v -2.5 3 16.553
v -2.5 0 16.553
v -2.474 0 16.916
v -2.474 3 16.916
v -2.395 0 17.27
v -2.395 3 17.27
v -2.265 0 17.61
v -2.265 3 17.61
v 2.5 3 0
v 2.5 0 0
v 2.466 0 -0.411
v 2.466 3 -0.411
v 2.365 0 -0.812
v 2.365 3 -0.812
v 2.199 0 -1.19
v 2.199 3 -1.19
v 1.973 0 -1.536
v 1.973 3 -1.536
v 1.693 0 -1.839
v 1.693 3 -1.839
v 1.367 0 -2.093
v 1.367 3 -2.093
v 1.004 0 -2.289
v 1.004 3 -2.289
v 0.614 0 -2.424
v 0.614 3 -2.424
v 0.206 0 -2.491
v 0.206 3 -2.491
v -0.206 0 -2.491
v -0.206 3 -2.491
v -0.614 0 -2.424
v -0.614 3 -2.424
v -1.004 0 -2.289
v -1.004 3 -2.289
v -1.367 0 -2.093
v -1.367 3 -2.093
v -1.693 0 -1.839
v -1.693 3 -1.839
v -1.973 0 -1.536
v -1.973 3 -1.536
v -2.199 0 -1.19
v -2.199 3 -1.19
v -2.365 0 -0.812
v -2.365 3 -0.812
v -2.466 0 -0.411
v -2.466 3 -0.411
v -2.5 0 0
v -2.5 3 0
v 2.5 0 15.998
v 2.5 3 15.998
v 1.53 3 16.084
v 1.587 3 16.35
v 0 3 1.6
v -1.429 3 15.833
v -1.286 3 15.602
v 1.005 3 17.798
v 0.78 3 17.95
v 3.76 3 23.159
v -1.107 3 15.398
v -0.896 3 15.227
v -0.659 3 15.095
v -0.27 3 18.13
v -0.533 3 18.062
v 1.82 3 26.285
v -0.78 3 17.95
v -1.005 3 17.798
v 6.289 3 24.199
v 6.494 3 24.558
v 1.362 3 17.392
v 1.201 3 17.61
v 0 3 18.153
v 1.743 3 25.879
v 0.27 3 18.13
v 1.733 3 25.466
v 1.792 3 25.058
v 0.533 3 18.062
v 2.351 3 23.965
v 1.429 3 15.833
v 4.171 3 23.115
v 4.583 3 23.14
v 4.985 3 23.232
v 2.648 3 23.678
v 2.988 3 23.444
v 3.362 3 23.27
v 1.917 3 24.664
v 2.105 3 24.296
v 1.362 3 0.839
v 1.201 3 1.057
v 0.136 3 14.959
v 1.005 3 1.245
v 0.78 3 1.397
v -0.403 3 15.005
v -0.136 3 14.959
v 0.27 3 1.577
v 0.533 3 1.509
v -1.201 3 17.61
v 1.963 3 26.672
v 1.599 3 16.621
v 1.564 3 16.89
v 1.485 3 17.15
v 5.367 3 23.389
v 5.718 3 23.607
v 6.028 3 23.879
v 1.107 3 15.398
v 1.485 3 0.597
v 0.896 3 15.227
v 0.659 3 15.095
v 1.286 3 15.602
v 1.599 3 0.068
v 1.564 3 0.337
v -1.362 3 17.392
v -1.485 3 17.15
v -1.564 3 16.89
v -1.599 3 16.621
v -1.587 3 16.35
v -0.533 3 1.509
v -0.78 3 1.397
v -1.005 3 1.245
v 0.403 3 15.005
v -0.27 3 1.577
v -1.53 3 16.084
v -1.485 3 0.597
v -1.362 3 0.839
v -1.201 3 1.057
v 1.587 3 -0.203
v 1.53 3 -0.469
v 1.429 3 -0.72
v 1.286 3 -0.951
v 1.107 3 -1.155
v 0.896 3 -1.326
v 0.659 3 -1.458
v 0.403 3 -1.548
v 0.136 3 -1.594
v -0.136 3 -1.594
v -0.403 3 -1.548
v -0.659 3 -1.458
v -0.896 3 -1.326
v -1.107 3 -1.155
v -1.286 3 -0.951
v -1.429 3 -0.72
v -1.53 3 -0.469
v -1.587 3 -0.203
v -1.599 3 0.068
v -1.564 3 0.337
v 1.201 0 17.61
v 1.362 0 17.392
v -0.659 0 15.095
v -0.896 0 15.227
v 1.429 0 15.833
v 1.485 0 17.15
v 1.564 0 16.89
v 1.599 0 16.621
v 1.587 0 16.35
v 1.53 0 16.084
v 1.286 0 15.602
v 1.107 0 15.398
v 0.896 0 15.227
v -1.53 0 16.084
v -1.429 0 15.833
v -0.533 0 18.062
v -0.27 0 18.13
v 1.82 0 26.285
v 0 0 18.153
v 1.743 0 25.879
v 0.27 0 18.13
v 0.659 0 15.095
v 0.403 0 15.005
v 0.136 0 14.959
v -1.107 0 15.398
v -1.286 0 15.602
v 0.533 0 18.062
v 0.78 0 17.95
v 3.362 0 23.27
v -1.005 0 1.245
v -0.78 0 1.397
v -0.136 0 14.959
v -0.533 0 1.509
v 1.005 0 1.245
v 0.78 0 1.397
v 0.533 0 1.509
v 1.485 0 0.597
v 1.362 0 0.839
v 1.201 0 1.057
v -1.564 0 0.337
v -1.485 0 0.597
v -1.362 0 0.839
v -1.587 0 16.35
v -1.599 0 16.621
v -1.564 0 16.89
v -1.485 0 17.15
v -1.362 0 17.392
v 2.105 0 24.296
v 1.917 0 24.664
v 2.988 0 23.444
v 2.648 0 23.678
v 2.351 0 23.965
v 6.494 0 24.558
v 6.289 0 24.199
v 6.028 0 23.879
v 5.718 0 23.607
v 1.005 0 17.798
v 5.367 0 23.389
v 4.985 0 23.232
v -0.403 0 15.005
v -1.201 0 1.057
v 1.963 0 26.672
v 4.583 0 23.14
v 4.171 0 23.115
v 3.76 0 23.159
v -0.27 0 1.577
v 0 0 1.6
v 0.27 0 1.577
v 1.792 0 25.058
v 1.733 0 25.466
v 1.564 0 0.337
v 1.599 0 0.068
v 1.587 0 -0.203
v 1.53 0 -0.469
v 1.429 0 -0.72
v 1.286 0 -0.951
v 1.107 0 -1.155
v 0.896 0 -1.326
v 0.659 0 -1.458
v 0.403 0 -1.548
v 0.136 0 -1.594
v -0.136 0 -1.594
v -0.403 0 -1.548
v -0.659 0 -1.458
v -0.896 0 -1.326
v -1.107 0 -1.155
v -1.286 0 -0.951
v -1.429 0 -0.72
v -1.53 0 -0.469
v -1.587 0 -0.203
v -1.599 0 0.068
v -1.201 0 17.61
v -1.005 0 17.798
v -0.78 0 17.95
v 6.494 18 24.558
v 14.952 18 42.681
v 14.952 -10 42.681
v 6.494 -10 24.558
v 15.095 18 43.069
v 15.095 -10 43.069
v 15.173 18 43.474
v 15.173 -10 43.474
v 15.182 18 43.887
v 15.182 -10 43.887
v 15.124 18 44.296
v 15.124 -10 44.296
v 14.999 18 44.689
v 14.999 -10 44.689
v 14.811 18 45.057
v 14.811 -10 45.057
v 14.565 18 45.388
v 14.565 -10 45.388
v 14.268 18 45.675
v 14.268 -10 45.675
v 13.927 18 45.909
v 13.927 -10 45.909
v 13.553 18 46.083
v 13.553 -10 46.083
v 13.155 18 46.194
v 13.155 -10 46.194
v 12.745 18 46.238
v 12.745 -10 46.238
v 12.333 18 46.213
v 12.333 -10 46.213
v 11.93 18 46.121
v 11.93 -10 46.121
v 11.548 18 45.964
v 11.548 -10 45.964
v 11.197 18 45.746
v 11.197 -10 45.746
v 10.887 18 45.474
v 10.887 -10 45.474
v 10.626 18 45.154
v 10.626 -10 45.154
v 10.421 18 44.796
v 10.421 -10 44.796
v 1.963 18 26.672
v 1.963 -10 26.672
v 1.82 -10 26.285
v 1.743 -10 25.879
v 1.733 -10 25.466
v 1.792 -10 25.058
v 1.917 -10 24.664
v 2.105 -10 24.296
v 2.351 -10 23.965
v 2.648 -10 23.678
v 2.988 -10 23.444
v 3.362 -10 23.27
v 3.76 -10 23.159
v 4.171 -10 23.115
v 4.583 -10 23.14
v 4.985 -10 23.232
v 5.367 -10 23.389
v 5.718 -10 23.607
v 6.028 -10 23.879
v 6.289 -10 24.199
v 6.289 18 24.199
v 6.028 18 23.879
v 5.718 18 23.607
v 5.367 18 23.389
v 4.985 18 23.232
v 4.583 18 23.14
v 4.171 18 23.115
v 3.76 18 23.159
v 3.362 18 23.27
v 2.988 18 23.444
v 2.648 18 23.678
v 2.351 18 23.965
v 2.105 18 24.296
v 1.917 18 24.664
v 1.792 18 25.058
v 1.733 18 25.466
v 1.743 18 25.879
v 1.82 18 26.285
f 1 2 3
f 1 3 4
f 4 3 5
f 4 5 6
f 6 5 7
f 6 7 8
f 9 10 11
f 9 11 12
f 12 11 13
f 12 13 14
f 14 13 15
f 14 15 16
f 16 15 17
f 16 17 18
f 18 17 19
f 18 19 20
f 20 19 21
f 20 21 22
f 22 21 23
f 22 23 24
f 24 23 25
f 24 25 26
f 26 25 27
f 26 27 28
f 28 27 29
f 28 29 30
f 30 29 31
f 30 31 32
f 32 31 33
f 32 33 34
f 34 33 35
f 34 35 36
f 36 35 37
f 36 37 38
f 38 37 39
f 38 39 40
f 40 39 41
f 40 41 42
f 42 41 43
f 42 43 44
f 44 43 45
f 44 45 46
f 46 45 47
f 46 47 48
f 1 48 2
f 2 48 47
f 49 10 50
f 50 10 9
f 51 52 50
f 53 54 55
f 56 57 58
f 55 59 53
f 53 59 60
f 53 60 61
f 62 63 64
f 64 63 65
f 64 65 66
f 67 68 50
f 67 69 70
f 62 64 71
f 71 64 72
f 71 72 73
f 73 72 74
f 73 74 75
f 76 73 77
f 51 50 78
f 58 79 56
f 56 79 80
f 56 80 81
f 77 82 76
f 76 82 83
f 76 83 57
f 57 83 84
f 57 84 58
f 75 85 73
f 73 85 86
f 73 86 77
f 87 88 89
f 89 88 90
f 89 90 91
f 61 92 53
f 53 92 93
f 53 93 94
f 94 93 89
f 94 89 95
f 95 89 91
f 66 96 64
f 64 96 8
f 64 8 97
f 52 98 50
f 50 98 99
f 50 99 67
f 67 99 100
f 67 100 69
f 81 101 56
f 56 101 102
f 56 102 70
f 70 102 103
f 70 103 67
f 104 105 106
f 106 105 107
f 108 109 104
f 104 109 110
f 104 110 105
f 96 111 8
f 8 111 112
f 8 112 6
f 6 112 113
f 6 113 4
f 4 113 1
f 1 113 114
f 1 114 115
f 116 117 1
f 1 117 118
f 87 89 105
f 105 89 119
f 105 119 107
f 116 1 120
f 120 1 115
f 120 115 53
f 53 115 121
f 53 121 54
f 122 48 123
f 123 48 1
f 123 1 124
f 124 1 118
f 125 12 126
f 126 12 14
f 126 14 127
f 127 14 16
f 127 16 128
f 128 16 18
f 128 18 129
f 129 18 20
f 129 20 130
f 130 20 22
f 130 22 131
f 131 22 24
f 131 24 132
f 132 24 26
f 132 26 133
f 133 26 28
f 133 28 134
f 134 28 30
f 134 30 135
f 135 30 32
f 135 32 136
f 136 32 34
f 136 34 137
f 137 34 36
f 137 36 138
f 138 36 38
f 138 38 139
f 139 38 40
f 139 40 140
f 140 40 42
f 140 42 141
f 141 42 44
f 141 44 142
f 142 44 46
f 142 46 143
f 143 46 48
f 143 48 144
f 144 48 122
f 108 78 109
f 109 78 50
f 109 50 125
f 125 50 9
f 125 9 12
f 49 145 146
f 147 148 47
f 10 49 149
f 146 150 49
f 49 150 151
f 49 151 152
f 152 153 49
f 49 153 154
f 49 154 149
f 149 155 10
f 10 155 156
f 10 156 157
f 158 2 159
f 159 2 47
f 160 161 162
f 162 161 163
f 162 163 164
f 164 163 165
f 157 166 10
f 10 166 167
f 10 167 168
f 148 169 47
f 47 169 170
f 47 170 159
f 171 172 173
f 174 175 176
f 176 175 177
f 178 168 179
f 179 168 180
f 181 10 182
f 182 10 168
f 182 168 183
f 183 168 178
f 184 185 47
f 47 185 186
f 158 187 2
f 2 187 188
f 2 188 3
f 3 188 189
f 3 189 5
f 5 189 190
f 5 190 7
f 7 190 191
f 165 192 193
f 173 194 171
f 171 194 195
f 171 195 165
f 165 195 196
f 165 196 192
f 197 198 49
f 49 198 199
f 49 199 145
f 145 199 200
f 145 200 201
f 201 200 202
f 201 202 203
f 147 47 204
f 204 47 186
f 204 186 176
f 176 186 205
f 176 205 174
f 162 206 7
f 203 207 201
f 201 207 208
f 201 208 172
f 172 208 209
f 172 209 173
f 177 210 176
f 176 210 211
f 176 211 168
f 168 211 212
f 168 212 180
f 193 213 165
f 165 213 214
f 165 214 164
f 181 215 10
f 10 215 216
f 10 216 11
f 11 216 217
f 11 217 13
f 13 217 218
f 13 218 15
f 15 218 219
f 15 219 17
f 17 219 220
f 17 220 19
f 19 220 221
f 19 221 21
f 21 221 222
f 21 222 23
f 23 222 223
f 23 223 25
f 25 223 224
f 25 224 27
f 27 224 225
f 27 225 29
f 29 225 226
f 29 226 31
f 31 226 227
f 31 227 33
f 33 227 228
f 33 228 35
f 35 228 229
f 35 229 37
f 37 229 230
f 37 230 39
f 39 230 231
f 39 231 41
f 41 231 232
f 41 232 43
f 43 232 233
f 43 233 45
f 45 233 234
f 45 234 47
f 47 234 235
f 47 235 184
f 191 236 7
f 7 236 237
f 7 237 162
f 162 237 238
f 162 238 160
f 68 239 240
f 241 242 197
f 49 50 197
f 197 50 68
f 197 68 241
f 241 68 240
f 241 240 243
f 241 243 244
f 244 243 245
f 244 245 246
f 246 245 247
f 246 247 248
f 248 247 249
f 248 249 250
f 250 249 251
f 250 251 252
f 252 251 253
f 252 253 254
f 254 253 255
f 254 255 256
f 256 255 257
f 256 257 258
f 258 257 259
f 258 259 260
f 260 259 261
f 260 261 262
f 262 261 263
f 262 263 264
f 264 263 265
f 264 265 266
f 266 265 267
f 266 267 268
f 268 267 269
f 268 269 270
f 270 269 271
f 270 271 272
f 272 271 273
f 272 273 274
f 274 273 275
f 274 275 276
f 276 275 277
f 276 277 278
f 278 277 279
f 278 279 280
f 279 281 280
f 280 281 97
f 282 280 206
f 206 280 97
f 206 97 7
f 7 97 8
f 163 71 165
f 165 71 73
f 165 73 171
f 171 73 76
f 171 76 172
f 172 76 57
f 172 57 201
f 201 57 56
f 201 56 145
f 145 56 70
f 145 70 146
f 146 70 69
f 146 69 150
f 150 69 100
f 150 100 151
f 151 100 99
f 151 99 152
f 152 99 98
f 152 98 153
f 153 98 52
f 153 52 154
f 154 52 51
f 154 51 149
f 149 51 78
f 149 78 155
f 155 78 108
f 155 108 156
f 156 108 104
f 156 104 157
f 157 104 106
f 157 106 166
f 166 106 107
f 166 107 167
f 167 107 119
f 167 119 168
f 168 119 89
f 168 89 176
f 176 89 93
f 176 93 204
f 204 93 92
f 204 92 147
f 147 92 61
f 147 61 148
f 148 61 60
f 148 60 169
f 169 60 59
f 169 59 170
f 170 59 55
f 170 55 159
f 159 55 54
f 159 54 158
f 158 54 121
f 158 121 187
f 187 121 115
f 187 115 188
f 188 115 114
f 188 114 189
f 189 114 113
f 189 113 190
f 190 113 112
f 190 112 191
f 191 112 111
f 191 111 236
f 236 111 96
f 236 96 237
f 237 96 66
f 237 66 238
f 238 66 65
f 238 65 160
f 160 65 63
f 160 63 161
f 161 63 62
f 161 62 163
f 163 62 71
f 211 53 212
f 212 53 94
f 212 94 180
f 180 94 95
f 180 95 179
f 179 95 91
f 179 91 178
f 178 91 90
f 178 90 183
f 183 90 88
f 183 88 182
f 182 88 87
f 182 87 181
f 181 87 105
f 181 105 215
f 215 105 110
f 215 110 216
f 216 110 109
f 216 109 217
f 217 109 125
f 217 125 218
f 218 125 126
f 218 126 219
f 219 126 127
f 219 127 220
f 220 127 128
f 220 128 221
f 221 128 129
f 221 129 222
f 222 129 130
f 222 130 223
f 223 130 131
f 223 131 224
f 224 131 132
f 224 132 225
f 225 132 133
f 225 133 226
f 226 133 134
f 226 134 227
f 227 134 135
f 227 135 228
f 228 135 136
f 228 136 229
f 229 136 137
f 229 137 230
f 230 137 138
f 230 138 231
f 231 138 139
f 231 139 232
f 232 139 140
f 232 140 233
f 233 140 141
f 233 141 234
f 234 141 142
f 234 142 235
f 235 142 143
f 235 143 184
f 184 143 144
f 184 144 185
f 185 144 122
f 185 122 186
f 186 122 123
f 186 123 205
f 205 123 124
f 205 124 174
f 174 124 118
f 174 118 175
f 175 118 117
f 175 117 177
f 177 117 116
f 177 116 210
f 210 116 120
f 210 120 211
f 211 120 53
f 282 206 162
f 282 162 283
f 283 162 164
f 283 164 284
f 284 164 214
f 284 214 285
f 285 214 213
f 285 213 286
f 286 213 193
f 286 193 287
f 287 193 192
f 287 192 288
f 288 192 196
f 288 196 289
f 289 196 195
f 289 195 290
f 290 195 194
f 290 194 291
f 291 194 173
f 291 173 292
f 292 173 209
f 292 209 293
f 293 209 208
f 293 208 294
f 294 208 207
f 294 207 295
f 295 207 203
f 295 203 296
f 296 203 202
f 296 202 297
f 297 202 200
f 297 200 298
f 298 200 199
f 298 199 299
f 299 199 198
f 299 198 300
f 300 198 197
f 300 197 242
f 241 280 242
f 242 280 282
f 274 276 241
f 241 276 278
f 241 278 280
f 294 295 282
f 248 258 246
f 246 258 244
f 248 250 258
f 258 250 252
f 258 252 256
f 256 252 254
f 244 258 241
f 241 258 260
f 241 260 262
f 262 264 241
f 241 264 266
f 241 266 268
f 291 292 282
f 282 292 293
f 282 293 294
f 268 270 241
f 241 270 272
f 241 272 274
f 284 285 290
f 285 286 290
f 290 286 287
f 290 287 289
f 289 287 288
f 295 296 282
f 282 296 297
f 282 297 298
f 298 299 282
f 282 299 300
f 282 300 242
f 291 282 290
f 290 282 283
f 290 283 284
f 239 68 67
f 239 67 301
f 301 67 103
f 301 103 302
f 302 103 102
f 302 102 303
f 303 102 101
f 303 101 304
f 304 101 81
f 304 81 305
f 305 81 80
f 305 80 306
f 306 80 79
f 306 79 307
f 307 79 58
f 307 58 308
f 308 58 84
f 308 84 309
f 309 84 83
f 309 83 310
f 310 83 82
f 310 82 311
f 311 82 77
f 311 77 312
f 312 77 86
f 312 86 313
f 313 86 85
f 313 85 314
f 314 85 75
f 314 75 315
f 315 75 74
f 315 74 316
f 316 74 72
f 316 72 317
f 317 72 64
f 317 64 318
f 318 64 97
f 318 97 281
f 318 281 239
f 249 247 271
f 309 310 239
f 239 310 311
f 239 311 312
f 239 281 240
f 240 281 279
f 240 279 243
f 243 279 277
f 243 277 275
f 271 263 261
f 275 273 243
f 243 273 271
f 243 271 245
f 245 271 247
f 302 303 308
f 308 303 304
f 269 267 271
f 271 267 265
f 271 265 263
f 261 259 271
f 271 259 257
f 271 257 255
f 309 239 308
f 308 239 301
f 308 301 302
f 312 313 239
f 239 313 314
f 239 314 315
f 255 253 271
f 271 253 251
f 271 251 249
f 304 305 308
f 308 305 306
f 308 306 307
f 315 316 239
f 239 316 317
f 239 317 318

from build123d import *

# Parameters (mm, degrees)
BOSS_EXTRUDE1_DEPTH = 3
BOSS_EXTRUDE2_START = -3
BOSS_EXTRUDE2_DEPTH = 3
SKETCH3_R           = 1.6
CUT_EXTRUDE1_DEPTH  = 49.760896398
BOSS_EXTRUDE3_START = 10
BOSS_EXTRUDE3_DEPTH = 10
BOSS_EXTRUDE4_DEPTH = 15


with BuildPart() as part:
    # Sketch1 → Boss-Extrude1 (new body)
    with BuildSketch(Plane(origin=(0, 0, 0), x_dir=(1, 0, 0), z_dir=(0, 1, 0))):
        with BuildLine():
            Line((2.5, 0), (2.5, -16.552945357))
            ThreePointArc((2.5, -16.552945357), (0, -19.052945357), (-2.5, -16.552945357))
            Line((-2.5, -16.552945357), (-2.5, 0))
            ThreePointArc((-2.5, 0), (0, 2.5), (2.5, 0))
        make_face()
    extrude(amount=BOSS_EXTRUDE1_DEPTH)

    # Sketch2 → Boss-Extrude2 (add)
    with BuildSketch(Plane(origin=(0, 3, 0), x_dir=(1, 0, 0), z_dir=(0, 1, 0)).offset(BOSS_EXTRUDE2_START)):
        with BuildLine():
            Line((2.26545785, -15.495731694), (14.95202181, -42.681225894))
            ThreePointArc((14.95202181, -42.681225894), (13.743777623, -46.003897407), (10.42110611, -44.79565322))
            Line((10.42110611, -44.79565322), (-2.26545785, -17.610159021))
            ThreePointArc((-2.26545785, -17.610159021), (-1.057213663, -14.287487507), (2.26545785, -15.495731694))
        make_face()
    extrude(amount=BOSS_EXTRUDE2_DEPTH)

    # Sketch3 → Cut-Extrude1 (cut, through all)
    with BuildSketch(Plane(origin=(0, 3, 0), x_dir=(1, 0, 0), z_dir=(0, 1, 0))):
        with Locations(Location((0, 0, 0), (0, 0, 270))):
            Circle(SKETCH3_R)
        with Locations(Location((0, -16.552945357, 0), (0, 0, 270))):
            Circle(SKETCH3_R)
    extrude(amount=-CUT_EXTRUDE1_DEPTH, mode=Mode.SUBTRACT)

    # Sketch5 → Boss-Extrude3 (add)
    with BuildSketch(Plane.XZ.offset(BOSS_EXTRUDE3_START)):
        with BuildLine():
            Line((14.95202181, 42.681225894), (6.494312503, 24.557563094))
            ThreePointArc((6.494312503, 24.557563094), (3.171640989, 23.349318908), (1.963396803, 26.671990421))
            Line((1.963396803, 26.671990421), (10.42110611, 44.795653221))
            ThreePointArc((10.42110611, 44.795653221), (13.743777623, 46.003897407), (14.95202181, 42.681225894))
        make_face()
    extrude(amount=-BOSS_EXTRUDE3_DEPTH)

    # Sketch6 → Boss-Extrude4 (add)
    with BuildSketch(Plane(origin=(0, 3, 0), x_dir=(1, 0, 0), z_dir=(0, 1, 0))):
        with BuildLine():
            Line((10.42110611, -44.79565322), (1.963396803, -26.671990421))
            ThreePointArc((1.963396803, -26.671990421), (3.17164099, -23.349318907), (6.494312503, -24.557563094))
            Line((6.494312503, -24.557563094), (14.95202181, -42.681225894))
            ThreePointArc((14.95202181, -42.681225894), (13.743777623, -46.003897407), (10.42110611, -44.79565322))
        make_face()
    extrude(amount=BOSS_EXTRUDE4_DEPTH)


solid = part.part
